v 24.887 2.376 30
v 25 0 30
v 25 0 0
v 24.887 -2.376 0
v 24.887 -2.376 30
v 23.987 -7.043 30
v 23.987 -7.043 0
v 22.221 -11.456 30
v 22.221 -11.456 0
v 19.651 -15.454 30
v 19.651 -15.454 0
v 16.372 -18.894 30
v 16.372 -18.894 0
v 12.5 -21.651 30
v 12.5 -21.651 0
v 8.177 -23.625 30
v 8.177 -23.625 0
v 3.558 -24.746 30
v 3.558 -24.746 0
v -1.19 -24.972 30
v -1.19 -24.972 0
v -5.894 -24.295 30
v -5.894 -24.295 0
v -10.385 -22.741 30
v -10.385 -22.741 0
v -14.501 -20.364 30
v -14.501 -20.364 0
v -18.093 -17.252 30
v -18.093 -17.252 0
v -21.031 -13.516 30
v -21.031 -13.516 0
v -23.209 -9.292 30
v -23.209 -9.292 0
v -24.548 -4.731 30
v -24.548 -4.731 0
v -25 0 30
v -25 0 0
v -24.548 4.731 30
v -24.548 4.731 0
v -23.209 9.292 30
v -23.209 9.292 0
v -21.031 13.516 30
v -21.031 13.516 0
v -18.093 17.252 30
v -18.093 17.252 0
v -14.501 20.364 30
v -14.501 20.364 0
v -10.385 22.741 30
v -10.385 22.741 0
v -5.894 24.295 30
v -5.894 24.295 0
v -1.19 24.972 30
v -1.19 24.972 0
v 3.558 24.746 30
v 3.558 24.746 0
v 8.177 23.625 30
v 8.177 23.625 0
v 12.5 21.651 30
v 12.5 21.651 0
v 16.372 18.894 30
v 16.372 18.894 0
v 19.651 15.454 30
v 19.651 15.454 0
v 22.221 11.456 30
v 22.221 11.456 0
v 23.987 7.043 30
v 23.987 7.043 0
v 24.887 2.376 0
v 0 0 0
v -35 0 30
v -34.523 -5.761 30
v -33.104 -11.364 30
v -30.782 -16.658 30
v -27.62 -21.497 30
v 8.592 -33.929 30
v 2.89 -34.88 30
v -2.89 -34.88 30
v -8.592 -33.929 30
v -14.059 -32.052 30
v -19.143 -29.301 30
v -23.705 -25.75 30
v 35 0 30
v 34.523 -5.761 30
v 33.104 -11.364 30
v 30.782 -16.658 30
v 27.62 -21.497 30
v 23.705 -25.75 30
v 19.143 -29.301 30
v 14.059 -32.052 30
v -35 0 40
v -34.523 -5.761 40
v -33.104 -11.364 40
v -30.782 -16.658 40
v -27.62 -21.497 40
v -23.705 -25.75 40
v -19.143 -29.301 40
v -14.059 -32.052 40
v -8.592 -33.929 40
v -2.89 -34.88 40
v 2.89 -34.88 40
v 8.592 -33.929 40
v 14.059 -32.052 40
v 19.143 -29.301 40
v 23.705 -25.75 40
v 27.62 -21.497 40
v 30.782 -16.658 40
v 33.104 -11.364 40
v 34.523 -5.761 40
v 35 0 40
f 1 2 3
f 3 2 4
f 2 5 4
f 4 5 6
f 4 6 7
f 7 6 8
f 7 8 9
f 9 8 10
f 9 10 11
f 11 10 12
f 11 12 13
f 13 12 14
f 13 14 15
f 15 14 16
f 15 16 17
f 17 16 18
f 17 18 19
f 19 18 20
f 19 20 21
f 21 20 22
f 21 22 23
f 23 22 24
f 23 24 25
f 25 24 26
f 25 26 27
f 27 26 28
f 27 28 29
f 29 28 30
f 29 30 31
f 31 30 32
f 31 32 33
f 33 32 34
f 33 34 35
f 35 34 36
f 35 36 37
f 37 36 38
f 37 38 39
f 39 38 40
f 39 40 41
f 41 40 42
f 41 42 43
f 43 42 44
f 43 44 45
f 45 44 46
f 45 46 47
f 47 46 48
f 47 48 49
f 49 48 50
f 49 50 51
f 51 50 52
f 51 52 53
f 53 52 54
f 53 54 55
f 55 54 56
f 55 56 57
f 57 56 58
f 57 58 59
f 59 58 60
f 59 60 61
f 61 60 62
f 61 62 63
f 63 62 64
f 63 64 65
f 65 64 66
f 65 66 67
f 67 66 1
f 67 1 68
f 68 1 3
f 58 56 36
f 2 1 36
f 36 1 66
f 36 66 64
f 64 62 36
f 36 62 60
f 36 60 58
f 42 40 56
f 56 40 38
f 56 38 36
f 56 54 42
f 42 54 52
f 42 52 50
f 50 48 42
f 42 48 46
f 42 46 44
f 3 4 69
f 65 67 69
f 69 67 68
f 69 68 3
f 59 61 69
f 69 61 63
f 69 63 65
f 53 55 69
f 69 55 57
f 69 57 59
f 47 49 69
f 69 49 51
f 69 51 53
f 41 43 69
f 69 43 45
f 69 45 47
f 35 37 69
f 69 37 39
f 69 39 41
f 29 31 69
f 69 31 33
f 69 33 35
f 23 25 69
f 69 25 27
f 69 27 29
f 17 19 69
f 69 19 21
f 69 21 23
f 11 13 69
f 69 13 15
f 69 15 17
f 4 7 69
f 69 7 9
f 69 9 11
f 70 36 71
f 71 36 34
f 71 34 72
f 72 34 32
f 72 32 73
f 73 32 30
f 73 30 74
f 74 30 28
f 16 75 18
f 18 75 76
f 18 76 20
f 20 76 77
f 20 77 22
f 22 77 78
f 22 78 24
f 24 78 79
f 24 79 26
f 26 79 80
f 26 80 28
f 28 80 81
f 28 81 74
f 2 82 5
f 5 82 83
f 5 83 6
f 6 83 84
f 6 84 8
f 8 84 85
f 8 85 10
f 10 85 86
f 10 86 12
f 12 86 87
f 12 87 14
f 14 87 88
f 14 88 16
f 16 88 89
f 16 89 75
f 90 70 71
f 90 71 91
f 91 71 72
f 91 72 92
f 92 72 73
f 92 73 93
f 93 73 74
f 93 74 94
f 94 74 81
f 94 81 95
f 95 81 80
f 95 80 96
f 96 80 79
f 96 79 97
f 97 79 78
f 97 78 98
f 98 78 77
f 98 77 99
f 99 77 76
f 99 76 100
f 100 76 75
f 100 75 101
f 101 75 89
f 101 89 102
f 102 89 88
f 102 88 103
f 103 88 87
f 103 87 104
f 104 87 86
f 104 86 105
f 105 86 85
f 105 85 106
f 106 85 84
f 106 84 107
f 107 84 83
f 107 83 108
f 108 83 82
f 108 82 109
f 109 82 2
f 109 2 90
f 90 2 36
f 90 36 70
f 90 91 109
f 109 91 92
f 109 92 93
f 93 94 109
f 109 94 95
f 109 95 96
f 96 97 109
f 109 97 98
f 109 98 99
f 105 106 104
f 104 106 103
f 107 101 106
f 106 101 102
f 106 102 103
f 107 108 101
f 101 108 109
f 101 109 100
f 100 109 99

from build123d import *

# Parameters (mm, degrees)
SKETCH1_R           = 25
BOSS_EXTRUDE1_DEPTH = 30
BOSS_EXTRUDE2_DEPTH = 10


with BuildPart() as part:
    # Sketch1 → Boss-Extrude1 (new body)
    with BuildSketch(Plane.XY):
        Circle(SKETCH1_R)
    extrude(amount=BOSS_EXTRUDE1_DEPTH)

    # Sketch2 → Boss-Extrude2 (add)
    with BuildSketch(Plane.XY.offset(30)):
        with BuildLine():
            Line((-35, 0), (35, 0))
            ThreePointArc((35, 0), (0, -35), (-35, 0))
        make_face()
    extrude(amount=BOSS_EXTRUDE2_DEPTH)


solid = part.part
